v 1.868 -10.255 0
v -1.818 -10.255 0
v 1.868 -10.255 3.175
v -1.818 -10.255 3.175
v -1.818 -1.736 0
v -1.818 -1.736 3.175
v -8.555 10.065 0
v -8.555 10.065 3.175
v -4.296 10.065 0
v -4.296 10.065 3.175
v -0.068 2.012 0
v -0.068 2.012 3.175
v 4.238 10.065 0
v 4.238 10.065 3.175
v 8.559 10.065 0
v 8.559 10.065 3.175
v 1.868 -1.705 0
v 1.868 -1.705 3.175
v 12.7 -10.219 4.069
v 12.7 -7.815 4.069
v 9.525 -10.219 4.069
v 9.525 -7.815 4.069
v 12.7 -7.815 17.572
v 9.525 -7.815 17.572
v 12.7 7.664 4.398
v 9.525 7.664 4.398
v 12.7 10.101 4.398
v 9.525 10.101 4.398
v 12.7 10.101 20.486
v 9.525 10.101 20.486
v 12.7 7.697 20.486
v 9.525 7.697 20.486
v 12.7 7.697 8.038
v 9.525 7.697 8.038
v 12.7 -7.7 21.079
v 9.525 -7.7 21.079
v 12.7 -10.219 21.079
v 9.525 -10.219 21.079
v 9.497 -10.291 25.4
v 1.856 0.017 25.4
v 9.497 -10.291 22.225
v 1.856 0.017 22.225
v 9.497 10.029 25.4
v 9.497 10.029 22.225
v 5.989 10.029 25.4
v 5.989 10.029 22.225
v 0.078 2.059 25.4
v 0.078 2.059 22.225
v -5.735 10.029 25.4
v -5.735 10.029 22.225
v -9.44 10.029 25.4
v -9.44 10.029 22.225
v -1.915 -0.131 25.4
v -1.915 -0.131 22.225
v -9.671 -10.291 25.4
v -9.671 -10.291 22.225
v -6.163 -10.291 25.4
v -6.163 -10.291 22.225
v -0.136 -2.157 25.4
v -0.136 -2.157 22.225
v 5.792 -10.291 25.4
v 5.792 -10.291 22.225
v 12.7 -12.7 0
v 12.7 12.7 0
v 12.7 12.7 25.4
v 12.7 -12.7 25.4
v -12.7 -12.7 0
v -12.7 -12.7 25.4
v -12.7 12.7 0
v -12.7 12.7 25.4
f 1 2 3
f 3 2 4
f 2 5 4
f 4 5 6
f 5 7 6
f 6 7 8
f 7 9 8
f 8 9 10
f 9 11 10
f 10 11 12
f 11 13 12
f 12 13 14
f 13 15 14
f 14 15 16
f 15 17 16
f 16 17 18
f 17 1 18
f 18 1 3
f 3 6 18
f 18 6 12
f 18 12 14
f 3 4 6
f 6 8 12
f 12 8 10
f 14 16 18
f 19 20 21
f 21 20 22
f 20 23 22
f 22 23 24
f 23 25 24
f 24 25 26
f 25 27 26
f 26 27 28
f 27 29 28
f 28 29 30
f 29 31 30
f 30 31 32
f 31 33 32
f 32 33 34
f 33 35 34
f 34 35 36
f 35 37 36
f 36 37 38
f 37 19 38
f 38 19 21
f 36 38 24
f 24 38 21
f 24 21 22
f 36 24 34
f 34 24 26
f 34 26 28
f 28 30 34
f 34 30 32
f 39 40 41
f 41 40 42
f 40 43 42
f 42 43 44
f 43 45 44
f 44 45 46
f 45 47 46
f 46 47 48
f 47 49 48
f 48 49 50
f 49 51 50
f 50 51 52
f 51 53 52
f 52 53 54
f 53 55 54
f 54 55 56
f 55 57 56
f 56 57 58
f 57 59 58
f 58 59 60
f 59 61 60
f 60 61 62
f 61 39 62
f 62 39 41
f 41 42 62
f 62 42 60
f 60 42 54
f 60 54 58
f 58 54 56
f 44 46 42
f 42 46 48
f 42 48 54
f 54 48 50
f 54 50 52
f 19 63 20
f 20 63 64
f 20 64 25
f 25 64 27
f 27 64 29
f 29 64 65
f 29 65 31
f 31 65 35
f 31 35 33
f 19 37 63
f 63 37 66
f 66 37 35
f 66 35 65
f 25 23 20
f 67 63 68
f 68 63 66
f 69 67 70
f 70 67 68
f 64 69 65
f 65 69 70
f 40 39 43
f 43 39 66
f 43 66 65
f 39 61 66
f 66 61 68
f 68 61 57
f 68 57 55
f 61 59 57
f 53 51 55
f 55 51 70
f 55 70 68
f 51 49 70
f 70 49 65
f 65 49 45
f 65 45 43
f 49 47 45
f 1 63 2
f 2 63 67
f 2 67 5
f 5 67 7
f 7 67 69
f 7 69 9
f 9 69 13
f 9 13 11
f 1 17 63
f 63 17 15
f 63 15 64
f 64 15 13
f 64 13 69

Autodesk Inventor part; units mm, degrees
ref_plane "YZ Plane" through (0, 0, 0) normal (1, 0, 0) x (0, 1, 0)
ref_plane "XZ Plane" through (0, 0, 0) normal (0, 1, 0) x (-1, 0, 0)
ref_plane "XY Plane" through (0, 0, 0) normal (0, 0, 1) x (1, 0, 0)
sketch "Sketch3" plane through (0, 0, 0) normal (0, 0, 1) x (1, 0, 0)
  line L0 (12.7, -12.7) -> (-12.7, -12.7)
  line L1 (-12.7, -12.7) -> (-12.7, 12.7)
  line L2 (-12.7, 12.7) -> (12.7, 12.7)
  line L3 (12.7, 12.7) -> (12.7, -12.7)
  line L4 (12.7, -12.7) -> (-12.7, 12.7) construction
  line L5 (-12.7, -12.7) -> (12.7, 12.7) construction
  point P0 (0, 0)
  dimension "d0" = 25.4
  dimension "d1" = 25.4
extrude "Cubo" add sketch "Sketch3" along normal blind 25.4
sketch "Sketch5" plane through (0, 0, 25.4) normal (0, 0, 1) x (1, 0, 0)
  line L0 (-12.1868, 12.0555) -> (12.0292, 12.0555) construction
  line L1 (12.0292, 12.0555) -> (12.0292, -12.3181) construction
  line L2 (12.0292, -12.3181) -> (-12.1868, -12.3181) construction
  line L3 (-12.1868, -12.3181) -> (-12.1868, 12.0555) construction
  line L4 (9.4966, -10.2913) -> (5.7916, -10.2913)
  line L5 (5.7916, -10.2913) -> (-0.1365, -2.1567)
  line L6 (-0.1365, -2.1567) -> (-6.1633, -10.2913)
  line L7 (-6.1633, -10.2913) -> (-9.6707, -10.2913)
  line L8 (-9.6707, -10.2913) -> (-1.9149, -0.1313)
  line L9 (-1.9149, -0.1313) -> (-9.4402, 10.0287)
  line L10 (-9.4402, 10.0287) -> (-5.7352, 10.0287)
  line L11 (-5.7352, 10.0287) -> (0.0776, 2.0588)
  line L12 (0.0776, 2.0588) -> (5.9892, 10.0287)
  line L13 (5.9892, 10.0287) -> (9.4966, 10.0287)
  line L14 (9.4966, 10.0287) -> (1.856, 0.0169)
  line L15 (1.856, 0.0169) -> (9.4966, -10.2913)
  point P0 (0, 0)
extrude "X" cut sketch "Sketch5" against normal blind 3.175
sketch "Sketch6" plane through (12.7, -12.7, 0) normal (1, 0, 0) x (0, 0, -1)
  line L0 (-25.0445, 24.9615) -> (-0.3507, 24.9615) construction
  line L1 (-0.3507, 24.9615) -> (-0.3507, 0.3203) construction
  line L2 (-0.3507, 0.3203) -> (-25.0445, 0.3203) construction
  line L3 (-25.0445, 0.3203) -> (-25.0445, 24.9615) construction
  line L4 (-4.069, 2.4809) -> (-21.0792, 2.4809)
  line L5 (-21.0792, 2.4809) -> (-21.0792, 5.0003)
  line L6 (-21.0792, 5.0003) -> (-8.0375, 20.3967)
  line L7 (-8.0375, 20.3967) -> (-20.4864, 20.3967)
  line L8 (-20.4864, 20.3967) -> (-20.4864, 22.8009)
  line L9 (-20.4864, 22.8009) -> (-4.3984, 22.8009)
  line L10 (-4.3984, 22.8009) -> (-4.3984, 20.3638)
  line L11 (-4.3984, 20.3638) -> (-17.5718, 4.885)
  line L12 (-17.5718, 4.885) -> (-4.069, 4.885)
  line L13 (-4.069, 4.885) -> (-4.069, 2.4809)
  point P0 (0, 12.7)
extrude "Z" cut sketch "Sketch6" against normal blind 3.175
sketch "Sketch7" plane through (0, 0, 0) normal (0, 0, -1) x (-1, 0, 0)
  line L0 (-12.3672, 12.2796) -> (12.4407, 12.2796) construction
  line L1 (12.4407, 12.2796) -> (12.4407, -12.4691) construction
  line L2 (12.4407, -12.4691) -> (-12.3672, -12.4691) construction
  line L3 (-12.3672, -12.4691) -> (-12.3672, 12.2796) construction
  line L4 (-1.8683, -10.2547) -> (-1.8683, -1.7055)
  line L5 (-1.8683, -1.7055) -> (-8.559, 10.0653)
  line L6 (-8.559, 10.0653) -> (-4.2379, 10.0653)
  line L7 (-4.2379, 10.0653) -> (0.0677, 2.0116)
  line L8 (0.0677, 2.0116) -> (4.2959, 10.0653)
  line L9 (4.2959, 10.0653) -> (8.555, 10.0653)
  line L10 (8.555, 10.0653) -> (1.8178, -1.7364)
  line L11 (1.8178, -1.7364) -> (1.8178, -10.2547)
  line L12 (1.8178, -10.2547) -> (-1.8683, -10.2547)
  point P0 (0, 0)
extrude "Y" cut sketch "Sketch7" against normal blind 3.175
properties part number "Cubo_3DPrint"
